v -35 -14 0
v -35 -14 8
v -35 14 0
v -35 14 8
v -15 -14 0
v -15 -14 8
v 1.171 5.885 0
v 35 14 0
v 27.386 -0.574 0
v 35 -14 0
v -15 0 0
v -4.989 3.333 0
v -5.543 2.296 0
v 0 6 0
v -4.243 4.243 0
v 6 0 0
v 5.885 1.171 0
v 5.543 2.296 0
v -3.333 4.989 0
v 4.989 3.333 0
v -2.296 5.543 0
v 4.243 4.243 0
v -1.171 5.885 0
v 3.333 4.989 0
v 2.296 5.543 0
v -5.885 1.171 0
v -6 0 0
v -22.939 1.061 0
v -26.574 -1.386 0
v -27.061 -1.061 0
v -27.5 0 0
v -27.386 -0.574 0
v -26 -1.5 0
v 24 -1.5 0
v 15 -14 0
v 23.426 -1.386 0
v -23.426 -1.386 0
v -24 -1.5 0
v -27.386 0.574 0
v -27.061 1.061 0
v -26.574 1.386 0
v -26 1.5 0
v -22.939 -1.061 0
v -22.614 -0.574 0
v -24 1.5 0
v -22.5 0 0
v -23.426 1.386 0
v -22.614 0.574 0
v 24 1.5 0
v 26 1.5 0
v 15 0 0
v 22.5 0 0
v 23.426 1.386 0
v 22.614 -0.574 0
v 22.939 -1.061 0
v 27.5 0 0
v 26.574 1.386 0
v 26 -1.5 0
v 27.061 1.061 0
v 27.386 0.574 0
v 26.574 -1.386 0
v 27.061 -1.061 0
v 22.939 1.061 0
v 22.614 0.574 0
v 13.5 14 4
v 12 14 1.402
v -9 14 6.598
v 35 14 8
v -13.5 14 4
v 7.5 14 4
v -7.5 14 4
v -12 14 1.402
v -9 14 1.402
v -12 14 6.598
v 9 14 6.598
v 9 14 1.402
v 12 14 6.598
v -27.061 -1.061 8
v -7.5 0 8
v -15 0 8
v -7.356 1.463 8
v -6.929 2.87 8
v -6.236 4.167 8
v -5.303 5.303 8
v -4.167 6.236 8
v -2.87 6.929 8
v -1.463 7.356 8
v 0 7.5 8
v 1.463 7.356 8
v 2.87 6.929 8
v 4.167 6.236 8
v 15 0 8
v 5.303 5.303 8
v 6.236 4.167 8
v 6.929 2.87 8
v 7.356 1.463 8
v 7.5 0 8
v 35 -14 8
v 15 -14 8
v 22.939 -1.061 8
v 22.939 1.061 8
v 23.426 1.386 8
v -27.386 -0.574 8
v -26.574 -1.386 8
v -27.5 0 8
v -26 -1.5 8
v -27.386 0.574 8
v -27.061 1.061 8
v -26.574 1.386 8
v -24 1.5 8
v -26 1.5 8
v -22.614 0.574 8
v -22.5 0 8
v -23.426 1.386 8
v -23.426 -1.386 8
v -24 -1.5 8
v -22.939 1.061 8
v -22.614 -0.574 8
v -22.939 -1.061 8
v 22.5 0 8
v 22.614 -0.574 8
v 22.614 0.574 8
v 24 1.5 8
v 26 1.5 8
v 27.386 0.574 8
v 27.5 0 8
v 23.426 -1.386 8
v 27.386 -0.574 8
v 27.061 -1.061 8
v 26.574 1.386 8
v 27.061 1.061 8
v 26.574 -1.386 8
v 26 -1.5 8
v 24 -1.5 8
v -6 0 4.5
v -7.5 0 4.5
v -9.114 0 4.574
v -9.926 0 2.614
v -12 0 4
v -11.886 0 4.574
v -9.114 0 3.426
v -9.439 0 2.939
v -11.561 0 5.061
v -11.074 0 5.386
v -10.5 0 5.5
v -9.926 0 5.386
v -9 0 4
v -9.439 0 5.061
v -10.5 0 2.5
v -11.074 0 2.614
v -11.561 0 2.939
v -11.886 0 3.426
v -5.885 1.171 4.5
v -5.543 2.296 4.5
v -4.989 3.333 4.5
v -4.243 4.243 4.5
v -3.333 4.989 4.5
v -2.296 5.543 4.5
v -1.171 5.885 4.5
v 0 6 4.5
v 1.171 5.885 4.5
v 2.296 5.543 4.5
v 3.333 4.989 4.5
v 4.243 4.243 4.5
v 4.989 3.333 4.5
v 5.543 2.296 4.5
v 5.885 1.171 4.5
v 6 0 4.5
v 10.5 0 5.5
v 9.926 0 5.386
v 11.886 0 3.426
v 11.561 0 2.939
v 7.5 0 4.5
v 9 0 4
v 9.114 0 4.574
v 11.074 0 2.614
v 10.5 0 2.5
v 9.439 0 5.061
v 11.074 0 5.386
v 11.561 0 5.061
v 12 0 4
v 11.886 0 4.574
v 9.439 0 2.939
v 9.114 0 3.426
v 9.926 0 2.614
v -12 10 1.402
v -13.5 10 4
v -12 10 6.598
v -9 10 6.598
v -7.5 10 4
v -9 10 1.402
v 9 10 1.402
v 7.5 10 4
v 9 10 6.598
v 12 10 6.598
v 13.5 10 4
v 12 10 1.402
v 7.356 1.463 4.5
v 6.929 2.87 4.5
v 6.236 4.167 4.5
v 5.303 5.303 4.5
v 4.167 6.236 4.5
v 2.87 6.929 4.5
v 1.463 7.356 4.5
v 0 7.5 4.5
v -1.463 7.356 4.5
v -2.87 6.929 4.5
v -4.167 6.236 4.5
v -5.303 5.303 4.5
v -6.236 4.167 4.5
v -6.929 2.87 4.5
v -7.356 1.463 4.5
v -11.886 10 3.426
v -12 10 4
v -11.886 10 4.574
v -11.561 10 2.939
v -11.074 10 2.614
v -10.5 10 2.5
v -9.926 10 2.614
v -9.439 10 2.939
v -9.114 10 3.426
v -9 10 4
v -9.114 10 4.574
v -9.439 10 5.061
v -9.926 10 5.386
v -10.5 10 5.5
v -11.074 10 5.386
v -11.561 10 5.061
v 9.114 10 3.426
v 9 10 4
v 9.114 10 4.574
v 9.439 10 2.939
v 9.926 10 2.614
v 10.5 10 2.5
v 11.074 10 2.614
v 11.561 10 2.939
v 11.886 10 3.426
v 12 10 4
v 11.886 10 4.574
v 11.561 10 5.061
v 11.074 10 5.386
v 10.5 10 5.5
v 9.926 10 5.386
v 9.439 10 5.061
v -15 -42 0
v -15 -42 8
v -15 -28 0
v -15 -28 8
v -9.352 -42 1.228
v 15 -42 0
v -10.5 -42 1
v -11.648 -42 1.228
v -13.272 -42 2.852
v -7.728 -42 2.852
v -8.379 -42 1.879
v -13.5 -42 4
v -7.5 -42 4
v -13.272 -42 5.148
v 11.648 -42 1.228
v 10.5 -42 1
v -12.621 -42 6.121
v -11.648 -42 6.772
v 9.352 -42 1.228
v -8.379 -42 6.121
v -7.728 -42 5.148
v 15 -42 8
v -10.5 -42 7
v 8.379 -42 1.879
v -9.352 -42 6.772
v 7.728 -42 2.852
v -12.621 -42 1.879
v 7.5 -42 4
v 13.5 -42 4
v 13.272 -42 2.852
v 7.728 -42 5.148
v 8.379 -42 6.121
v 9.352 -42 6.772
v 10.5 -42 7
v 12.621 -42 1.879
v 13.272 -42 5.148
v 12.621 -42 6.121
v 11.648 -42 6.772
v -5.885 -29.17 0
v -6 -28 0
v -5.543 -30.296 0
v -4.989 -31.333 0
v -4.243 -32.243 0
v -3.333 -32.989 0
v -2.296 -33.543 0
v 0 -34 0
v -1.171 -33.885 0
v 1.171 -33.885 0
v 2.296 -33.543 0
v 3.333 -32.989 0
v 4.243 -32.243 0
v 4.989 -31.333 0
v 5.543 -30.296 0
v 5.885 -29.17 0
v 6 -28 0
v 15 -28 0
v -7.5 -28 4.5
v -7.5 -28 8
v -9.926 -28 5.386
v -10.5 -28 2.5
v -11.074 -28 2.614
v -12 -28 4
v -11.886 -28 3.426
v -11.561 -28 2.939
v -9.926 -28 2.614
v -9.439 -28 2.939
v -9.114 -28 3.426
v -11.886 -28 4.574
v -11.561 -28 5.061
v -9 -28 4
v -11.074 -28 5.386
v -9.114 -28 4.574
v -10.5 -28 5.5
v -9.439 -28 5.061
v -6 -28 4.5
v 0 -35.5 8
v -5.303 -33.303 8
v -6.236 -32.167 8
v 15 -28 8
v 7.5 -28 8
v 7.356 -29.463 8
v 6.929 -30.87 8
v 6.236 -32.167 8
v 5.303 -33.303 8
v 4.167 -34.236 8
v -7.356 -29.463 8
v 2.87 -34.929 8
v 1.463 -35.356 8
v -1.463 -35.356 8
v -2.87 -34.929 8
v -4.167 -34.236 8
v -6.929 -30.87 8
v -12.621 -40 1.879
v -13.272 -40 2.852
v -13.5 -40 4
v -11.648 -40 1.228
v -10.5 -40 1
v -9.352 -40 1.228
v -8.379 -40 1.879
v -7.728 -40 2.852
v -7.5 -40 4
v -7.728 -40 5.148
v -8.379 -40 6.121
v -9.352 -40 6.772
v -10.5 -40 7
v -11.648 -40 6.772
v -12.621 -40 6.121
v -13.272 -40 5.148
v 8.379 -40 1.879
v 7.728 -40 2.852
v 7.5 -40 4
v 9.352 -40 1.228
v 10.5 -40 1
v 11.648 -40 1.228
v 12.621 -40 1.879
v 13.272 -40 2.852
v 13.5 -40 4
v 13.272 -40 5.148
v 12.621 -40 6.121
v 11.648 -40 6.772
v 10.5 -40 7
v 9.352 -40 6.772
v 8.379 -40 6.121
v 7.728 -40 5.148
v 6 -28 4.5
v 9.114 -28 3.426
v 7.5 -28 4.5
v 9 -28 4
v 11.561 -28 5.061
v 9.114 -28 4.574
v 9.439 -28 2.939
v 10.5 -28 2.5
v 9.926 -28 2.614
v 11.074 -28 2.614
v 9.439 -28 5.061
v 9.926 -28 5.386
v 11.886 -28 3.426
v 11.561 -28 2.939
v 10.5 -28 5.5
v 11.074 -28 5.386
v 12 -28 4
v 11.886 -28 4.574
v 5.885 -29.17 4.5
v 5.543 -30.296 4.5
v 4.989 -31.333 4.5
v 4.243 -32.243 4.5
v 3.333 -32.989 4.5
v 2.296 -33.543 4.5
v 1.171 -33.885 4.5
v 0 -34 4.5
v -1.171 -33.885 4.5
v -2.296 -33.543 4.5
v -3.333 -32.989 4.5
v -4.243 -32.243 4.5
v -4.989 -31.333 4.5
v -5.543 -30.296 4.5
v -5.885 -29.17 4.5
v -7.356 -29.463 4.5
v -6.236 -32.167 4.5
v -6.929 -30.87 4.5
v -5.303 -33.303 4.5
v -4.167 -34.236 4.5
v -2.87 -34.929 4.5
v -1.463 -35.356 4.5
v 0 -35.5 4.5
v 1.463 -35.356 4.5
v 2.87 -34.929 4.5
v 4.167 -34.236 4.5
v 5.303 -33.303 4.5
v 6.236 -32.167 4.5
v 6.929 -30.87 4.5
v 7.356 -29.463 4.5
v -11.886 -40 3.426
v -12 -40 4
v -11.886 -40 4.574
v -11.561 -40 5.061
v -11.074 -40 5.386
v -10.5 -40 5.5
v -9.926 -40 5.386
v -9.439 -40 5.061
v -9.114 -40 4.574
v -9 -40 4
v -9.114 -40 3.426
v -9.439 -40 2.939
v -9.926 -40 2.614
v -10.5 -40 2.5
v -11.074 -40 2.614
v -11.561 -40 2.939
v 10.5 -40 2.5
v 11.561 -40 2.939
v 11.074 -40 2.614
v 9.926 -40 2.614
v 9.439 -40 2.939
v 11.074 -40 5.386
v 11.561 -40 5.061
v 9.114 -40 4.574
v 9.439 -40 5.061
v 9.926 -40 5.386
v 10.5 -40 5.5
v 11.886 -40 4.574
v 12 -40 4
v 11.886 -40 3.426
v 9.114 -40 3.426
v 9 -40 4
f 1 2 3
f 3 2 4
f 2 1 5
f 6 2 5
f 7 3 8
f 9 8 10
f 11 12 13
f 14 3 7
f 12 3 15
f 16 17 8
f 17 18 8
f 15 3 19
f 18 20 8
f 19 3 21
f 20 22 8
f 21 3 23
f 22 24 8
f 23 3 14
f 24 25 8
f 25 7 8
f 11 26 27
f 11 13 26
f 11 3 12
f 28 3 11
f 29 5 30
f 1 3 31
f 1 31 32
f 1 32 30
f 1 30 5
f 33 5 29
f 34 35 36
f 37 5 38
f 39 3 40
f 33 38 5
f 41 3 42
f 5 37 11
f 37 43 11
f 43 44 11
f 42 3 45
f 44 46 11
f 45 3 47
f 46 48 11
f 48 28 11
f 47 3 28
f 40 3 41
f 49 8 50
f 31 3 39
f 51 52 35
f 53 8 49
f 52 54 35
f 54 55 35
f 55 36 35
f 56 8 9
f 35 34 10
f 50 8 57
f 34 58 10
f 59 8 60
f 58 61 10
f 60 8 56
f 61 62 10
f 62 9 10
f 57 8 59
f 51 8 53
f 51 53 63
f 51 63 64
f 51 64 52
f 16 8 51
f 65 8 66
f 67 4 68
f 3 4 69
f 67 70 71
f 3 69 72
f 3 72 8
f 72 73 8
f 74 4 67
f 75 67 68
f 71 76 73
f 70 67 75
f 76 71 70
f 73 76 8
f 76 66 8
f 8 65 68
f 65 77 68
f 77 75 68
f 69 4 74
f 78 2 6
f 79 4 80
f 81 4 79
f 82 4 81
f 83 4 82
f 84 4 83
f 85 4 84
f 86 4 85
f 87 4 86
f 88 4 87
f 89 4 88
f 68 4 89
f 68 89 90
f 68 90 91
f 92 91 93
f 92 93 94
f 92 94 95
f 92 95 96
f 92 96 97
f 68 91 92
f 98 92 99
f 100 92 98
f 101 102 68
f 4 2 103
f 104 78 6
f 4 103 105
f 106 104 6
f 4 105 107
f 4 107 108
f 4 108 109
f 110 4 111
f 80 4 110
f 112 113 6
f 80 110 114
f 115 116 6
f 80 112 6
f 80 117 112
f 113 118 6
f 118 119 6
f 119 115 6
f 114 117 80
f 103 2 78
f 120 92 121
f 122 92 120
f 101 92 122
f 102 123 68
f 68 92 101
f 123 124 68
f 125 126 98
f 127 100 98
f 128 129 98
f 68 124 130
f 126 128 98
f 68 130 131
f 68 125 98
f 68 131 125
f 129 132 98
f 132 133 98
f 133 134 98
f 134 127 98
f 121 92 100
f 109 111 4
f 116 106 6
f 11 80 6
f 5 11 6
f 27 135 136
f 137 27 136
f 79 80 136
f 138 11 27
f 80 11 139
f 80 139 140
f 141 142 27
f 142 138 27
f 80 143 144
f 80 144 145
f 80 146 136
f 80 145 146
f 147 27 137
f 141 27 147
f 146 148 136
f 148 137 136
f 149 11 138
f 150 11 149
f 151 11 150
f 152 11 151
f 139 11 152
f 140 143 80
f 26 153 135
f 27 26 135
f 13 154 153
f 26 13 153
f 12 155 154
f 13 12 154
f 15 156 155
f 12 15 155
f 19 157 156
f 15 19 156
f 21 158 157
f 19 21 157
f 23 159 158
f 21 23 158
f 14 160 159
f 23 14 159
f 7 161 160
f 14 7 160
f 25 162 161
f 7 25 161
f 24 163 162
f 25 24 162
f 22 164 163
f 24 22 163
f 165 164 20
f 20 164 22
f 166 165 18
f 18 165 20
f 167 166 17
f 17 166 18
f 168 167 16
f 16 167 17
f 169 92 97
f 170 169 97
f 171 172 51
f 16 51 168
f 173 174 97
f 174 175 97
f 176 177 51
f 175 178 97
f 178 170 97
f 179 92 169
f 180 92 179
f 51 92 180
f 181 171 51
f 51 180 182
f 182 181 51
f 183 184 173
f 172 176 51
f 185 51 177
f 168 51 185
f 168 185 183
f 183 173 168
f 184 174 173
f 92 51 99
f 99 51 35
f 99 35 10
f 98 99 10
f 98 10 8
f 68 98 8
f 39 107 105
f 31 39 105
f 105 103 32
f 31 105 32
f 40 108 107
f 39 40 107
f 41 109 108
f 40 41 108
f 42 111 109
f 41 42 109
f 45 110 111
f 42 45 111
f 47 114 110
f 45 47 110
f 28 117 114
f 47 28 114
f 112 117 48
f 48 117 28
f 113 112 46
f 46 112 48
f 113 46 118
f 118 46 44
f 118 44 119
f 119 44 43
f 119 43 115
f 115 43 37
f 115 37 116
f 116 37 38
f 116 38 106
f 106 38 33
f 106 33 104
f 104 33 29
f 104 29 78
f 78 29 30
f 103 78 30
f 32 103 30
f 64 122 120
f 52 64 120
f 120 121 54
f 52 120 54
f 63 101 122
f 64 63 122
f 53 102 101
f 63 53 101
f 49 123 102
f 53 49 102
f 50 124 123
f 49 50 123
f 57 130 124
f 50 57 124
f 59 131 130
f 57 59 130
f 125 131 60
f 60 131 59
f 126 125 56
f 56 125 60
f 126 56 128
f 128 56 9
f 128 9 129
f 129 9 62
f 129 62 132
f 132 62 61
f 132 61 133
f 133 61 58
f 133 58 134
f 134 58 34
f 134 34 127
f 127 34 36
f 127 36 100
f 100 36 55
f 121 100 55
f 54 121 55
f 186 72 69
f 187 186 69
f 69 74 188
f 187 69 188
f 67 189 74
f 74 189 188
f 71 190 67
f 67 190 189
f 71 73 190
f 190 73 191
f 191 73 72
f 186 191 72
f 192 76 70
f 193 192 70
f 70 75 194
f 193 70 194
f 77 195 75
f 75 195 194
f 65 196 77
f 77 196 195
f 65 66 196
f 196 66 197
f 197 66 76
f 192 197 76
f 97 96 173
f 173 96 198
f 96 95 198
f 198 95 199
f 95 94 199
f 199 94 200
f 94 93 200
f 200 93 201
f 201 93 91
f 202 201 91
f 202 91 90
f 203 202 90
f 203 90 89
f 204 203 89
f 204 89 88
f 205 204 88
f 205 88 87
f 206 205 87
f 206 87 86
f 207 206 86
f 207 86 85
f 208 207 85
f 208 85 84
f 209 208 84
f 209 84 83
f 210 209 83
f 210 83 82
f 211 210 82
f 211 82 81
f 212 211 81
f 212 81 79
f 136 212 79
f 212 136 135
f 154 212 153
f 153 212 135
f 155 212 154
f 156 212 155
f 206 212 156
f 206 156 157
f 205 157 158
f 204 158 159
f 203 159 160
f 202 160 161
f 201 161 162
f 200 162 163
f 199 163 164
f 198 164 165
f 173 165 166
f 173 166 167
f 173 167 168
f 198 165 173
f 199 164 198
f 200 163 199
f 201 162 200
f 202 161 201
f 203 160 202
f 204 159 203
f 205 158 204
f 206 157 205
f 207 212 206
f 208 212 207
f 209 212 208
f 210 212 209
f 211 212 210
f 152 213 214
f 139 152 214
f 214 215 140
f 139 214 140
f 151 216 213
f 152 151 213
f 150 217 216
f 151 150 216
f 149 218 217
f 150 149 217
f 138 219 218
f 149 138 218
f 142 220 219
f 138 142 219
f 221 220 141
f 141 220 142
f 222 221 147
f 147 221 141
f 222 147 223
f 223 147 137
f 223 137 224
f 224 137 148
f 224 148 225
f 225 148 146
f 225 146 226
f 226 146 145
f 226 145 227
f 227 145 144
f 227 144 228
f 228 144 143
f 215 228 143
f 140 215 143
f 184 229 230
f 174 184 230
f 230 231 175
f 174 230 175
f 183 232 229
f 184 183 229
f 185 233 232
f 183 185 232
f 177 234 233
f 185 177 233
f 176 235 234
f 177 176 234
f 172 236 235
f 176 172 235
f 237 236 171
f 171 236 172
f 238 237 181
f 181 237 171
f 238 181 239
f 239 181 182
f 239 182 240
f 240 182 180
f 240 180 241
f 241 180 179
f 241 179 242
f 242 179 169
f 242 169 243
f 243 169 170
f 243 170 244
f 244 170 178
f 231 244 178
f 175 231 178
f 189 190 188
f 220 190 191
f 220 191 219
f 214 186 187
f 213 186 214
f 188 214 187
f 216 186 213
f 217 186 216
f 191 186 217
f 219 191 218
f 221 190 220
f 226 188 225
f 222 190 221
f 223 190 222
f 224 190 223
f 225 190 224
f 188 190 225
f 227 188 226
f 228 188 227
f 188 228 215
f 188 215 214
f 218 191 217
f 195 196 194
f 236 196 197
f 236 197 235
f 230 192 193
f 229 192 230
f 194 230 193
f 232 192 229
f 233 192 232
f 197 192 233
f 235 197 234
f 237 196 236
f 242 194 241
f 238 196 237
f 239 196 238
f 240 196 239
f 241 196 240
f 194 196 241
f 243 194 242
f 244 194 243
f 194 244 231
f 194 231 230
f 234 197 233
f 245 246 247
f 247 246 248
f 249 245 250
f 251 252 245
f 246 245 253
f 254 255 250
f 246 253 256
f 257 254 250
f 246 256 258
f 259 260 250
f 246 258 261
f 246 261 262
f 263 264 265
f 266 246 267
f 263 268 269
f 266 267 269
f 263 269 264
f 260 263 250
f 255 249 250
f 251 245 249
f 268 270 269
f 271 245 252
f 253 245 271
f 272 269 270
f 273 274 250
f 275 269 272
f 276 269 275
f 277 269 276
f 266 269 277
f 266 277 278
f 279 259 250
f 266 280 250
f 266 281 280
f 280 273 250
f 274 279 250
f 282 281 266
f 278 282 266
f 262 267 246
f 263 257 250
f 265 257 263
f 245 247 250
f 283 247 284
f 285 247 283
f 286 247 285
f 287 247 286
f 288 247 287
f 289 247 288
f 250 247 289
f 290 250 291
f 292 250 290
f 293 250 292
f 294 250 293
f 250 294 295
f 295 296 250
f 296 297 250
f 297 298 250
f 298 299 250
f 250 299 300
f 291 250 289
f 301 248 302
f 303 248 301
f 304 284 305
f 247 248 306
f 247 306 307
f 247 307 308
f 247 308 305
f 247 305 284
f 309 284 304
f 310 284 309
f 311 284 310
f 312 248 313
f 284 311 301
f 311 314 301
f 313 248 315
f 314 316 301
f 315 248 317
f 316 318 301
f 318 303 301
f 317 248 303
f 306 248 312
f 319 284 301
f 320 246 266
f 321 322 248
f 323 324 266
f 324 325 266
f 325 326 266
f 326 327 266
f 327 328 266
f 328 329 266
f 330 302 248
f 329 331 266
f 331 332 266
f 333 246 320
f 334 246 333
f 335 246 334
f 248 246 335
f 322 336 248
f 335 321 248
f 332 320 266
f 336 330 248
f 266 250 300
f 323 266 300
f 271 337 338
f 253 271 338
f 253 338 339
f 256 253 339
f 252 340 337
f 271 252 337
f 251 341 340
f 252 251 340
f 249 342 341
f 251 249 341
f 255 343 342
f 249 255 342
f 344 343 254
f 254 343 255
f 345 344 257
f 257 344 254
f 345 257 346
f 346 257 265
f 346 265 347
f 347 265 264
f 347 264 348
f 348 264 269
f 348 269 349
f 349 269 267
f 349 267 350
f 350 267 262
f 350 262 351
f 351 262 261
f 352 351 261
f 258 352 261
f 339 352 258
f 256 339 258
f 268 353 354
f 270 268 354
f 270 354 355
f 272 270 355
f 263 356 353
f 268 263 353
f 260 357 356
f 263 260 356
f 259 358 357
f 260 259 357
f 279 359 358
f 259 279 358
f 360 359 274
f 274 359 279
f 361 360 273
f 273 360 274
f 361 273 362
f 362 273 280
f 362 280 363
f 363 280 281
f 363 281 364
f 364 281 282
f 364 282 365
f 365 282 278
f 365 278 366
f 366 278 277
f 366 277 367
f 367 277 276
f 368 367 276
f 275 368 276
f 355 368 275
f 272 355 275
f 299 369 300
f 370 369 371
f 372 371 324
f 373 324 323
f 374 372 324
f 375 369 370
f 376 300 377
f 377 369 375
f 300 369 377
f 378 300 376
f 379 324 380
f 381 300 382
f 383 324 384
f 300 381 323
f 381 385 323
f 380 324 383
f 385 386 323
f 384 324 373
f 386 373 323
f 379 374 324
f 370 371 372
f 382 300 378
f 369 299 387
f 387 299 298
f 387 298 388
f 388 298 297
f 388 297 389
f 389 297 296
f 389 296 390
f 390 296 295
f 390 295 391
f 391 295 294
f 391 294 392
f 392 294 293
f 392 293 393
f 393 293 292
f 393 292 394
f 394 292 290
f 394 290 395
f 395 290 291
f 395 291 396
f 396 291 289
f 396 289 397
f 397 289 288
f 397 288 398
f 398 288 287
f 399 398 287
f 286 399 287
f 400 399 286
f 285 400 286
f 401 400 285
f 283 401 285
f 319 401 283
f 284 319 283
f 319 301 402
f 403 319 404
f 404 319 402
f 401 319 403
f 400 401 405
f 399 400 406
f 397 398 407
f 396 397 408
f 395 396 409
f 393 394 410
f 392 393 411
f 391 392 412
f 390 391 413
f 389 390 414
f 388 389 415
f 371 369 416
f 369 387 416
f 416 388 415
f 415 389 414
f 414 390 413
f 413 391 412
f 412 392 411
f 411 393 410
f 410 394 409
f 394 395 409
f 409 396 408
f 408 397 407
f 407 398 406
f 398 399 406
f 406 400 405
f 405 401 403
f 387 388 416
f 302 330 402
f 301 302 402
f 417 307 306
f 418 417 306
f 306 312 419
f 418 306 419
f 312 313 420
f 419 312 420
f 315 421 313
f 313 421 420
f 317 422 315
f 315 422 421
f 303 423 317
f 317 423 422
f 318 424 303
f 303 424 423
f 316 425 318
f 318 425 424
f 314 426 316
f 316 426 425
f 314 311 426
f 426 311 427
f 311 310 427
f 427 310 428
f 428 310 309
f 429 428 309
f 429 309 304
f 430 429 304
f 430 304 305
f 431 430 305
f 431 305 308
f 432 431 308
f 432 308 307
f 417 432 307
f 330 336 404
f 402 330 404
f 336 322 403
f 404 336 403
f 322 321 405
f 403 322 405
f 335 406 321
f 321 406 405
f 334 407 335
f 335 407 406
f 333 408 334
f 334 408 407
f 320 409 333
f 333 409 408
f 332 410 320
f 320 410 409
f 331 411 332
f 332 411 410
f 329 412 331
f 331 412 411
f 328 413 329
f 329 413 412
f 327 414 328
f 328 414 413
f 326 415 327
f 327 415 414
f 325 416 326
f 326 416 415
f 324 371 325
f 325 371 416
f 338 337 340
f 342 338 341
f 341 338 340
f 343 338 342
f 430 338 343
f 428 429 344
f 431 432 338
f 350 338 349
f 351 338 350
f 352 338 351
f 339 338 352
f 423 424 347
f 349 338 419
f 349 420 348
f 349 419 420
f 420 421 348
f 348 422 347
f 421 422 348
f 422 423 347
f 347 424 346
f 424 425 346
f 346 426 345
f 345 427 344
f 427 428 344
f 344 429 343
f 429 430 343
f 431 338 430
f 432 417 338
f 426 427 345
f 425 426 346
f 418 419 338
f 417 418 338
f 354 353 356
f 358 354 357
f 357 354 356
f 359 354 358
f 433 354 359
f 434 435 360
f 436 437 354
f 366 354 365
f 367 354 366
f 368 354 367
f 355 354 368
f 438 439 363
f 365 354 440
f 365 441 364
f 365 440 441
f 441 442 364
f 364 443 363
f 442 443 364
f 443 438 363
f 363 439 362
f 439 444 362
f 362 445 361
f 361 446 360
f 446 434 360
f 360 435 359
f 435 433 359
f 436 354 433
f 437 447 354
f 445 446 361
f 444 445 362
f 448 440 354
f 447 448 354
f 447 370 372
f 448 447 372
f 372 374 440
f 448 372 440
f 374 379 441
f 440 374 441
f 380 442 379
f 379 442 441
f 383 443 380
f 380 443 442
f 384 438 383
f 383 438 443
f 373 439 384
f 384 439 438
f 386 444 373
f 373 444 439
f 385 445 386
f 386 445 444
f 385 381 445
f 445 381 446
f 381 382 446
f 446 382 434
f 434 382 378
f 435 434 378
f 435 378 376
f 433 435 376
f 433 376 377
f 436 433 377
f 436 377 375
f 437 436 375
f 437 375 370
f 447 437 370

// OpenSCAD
width = 70;
depth = 28;
thickness = 8;

screw_mount = 3;       // diameter of the mounting screws
screw_assemble = 3;    // diameter of assembling screws
screw_assemble_head = 6;

mount_separation = 50; // distance between mount points
mount_allowance = 2;   // 

jhead_R = 15 / 2;      // radius of the JHead assembly
jhead_r = 12 / 2;      // radius of JHead at the mount groove
jhead_d = 4.5;         // width of the groove
jhead_D = 10 - jhead_d;// width of the neck

module main_body(x = width, y = depth, z = thickness) {
	difference() {
		translate([0, 0, z / 2]) cube(size = [x, y, z], center = true);

		// JHead mounting point
		translate([0, 0, jhead_d])
			cylinder(h = z - jhead_d, r = jhead_R, $fn = 32);
		translate([0, 0, 0])
			cylinder(h = jhead_d, r = jhead_r, $fn = 32);

		// screw holes for attachment to extruder
		mount_holes(mount_separation / 2);

		// screw holes for assembling main body and clamp
		assemble_holes(x, y, z);
	};
}

module mount_holes(s) {
	translate([-s, 0, 0])
		mount_hole();
	translate([ s, 0, 0])
		mount_hole();
}

module mount_hole() {
	a = mount_allowance;
	d = screw_mount;
	z = thickness;

	translate([0, 0, z / 2])
		cube([a, d, z], center = true);

	translate([-a/2, 0, 0])
		cylinder(h = z, d = d, $fn = 16);
	translate([ a/2, 0, 0])
		cylinder(h = z, d = d, $fn = 16);
}

module assemble_holes(x = width, y = depth, z = thickness) {
	s = jhead_R + screw_assemble;
	translate([s, -y/2, z/2])
	rotate([-90, 0, 0])
		assemble_hole(x, y, z);
	translate([-s, -y/2, z/2])
	rotate([-90, 0, 0])
		assemble_hole(x, y, z);
}

module assemble_hole(x, y, z) {
	cylinder(h = y, d = screw_assemble, $fn = 16);
	translate([0, 0, -1])
		cylinder(h = 3, d = screw_assemble_head, $fn = 16);
	translate([0, 0, y - 4])
		cylinder(h = 5, d = screw_assemble_head, $fn = 6);
}


module clamp_shape(x, y, z) {
	translate([0, -y/2, z/2])
		cube([y + 2, y, z], center = true);
}

module clamp(x, y, z) {
	intersection () {
		main_body(x, y, z);
		clamp_shape(x, y, z);
	}
}


module main(x = width, y = depth, z = thickness) {
	difference () {
		main_body(x, y, z);
		clamp_shape(x, y, z);
	}

	translate([0, -y, 0])
		clamp(x, y, z);
}

main();
